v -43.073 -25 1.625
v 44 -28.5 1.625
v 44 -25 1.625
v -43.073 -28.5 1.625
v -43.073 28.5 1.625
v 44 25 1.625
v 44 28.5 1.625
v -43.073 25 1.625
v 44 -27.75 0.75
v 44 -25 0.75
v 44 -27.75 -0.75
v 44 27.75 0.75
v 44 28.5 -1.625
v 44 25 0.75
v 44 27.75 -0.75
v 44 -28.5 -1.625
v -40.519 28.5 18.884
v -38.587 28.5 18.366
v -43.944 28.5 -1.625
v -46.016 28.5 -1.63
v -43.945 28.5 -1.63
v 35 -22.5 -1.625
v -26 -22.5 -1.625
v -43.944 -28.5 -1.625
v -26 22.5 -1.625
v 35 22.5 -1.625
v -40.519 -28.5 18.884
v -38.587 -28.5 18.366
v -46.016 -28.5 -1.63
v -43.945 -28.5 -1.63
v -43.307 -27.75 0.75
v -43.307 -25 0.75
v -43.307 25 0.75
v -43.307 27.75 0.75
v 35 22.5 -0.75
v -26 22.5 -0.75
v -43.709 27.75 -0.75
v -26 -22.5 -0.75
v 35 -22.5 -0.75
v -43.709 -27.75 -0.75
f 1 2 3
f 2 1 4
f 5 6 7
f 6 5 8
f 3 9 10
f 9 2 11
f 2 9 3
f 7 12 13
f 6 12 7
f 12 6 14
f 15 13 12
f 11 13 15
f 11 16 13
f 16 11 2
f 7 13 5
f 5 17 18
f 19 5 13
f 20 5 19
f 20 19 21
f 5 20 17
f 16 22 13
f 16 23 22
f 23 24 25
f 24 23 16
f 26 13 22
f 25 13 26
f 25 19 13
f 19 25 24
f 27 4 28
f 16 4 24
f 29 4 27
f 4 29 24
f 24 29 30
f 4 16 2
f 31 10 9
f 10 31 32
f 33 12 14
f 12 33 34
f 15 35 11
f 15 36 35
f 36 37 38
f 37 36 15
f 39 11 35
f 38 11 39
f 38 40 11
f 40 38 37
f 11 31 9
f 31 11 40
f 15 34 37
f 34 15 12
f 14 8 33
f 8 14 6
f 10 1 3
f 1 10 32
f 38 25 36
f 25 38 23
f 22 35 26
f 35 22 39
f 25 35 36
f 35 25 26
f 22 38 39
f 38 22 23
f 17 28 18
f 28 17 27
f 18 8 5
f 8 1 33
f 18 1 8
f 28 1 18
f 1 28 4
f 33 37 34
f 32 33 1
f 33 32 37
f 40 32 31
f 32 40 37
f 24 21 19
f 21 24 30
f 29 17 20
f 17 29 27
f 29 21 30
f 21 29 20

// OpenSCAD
// Instax Bilderrahmen

//rotate([0,-15-90,0])
union() {
    difference(){

    cube([88,57,3.25],center=true);

    translate([0,0,0])
    cube([90,55.5,1.5],center=true);

    translate([0,0,1.4])
    cube([90,50,1.5],center=true);

    translate([-13.5+18,0,-1.4])
    cube([61,45,1.5],center=true);

    }

    difference() {
        translate([-42.4,0,8.0])
        rotate([0,15,0])
        cube([2,57,22],center=true);

        translate([0,0,-2.38])
        cube([100,58,1.5],center=true);
    }

}
